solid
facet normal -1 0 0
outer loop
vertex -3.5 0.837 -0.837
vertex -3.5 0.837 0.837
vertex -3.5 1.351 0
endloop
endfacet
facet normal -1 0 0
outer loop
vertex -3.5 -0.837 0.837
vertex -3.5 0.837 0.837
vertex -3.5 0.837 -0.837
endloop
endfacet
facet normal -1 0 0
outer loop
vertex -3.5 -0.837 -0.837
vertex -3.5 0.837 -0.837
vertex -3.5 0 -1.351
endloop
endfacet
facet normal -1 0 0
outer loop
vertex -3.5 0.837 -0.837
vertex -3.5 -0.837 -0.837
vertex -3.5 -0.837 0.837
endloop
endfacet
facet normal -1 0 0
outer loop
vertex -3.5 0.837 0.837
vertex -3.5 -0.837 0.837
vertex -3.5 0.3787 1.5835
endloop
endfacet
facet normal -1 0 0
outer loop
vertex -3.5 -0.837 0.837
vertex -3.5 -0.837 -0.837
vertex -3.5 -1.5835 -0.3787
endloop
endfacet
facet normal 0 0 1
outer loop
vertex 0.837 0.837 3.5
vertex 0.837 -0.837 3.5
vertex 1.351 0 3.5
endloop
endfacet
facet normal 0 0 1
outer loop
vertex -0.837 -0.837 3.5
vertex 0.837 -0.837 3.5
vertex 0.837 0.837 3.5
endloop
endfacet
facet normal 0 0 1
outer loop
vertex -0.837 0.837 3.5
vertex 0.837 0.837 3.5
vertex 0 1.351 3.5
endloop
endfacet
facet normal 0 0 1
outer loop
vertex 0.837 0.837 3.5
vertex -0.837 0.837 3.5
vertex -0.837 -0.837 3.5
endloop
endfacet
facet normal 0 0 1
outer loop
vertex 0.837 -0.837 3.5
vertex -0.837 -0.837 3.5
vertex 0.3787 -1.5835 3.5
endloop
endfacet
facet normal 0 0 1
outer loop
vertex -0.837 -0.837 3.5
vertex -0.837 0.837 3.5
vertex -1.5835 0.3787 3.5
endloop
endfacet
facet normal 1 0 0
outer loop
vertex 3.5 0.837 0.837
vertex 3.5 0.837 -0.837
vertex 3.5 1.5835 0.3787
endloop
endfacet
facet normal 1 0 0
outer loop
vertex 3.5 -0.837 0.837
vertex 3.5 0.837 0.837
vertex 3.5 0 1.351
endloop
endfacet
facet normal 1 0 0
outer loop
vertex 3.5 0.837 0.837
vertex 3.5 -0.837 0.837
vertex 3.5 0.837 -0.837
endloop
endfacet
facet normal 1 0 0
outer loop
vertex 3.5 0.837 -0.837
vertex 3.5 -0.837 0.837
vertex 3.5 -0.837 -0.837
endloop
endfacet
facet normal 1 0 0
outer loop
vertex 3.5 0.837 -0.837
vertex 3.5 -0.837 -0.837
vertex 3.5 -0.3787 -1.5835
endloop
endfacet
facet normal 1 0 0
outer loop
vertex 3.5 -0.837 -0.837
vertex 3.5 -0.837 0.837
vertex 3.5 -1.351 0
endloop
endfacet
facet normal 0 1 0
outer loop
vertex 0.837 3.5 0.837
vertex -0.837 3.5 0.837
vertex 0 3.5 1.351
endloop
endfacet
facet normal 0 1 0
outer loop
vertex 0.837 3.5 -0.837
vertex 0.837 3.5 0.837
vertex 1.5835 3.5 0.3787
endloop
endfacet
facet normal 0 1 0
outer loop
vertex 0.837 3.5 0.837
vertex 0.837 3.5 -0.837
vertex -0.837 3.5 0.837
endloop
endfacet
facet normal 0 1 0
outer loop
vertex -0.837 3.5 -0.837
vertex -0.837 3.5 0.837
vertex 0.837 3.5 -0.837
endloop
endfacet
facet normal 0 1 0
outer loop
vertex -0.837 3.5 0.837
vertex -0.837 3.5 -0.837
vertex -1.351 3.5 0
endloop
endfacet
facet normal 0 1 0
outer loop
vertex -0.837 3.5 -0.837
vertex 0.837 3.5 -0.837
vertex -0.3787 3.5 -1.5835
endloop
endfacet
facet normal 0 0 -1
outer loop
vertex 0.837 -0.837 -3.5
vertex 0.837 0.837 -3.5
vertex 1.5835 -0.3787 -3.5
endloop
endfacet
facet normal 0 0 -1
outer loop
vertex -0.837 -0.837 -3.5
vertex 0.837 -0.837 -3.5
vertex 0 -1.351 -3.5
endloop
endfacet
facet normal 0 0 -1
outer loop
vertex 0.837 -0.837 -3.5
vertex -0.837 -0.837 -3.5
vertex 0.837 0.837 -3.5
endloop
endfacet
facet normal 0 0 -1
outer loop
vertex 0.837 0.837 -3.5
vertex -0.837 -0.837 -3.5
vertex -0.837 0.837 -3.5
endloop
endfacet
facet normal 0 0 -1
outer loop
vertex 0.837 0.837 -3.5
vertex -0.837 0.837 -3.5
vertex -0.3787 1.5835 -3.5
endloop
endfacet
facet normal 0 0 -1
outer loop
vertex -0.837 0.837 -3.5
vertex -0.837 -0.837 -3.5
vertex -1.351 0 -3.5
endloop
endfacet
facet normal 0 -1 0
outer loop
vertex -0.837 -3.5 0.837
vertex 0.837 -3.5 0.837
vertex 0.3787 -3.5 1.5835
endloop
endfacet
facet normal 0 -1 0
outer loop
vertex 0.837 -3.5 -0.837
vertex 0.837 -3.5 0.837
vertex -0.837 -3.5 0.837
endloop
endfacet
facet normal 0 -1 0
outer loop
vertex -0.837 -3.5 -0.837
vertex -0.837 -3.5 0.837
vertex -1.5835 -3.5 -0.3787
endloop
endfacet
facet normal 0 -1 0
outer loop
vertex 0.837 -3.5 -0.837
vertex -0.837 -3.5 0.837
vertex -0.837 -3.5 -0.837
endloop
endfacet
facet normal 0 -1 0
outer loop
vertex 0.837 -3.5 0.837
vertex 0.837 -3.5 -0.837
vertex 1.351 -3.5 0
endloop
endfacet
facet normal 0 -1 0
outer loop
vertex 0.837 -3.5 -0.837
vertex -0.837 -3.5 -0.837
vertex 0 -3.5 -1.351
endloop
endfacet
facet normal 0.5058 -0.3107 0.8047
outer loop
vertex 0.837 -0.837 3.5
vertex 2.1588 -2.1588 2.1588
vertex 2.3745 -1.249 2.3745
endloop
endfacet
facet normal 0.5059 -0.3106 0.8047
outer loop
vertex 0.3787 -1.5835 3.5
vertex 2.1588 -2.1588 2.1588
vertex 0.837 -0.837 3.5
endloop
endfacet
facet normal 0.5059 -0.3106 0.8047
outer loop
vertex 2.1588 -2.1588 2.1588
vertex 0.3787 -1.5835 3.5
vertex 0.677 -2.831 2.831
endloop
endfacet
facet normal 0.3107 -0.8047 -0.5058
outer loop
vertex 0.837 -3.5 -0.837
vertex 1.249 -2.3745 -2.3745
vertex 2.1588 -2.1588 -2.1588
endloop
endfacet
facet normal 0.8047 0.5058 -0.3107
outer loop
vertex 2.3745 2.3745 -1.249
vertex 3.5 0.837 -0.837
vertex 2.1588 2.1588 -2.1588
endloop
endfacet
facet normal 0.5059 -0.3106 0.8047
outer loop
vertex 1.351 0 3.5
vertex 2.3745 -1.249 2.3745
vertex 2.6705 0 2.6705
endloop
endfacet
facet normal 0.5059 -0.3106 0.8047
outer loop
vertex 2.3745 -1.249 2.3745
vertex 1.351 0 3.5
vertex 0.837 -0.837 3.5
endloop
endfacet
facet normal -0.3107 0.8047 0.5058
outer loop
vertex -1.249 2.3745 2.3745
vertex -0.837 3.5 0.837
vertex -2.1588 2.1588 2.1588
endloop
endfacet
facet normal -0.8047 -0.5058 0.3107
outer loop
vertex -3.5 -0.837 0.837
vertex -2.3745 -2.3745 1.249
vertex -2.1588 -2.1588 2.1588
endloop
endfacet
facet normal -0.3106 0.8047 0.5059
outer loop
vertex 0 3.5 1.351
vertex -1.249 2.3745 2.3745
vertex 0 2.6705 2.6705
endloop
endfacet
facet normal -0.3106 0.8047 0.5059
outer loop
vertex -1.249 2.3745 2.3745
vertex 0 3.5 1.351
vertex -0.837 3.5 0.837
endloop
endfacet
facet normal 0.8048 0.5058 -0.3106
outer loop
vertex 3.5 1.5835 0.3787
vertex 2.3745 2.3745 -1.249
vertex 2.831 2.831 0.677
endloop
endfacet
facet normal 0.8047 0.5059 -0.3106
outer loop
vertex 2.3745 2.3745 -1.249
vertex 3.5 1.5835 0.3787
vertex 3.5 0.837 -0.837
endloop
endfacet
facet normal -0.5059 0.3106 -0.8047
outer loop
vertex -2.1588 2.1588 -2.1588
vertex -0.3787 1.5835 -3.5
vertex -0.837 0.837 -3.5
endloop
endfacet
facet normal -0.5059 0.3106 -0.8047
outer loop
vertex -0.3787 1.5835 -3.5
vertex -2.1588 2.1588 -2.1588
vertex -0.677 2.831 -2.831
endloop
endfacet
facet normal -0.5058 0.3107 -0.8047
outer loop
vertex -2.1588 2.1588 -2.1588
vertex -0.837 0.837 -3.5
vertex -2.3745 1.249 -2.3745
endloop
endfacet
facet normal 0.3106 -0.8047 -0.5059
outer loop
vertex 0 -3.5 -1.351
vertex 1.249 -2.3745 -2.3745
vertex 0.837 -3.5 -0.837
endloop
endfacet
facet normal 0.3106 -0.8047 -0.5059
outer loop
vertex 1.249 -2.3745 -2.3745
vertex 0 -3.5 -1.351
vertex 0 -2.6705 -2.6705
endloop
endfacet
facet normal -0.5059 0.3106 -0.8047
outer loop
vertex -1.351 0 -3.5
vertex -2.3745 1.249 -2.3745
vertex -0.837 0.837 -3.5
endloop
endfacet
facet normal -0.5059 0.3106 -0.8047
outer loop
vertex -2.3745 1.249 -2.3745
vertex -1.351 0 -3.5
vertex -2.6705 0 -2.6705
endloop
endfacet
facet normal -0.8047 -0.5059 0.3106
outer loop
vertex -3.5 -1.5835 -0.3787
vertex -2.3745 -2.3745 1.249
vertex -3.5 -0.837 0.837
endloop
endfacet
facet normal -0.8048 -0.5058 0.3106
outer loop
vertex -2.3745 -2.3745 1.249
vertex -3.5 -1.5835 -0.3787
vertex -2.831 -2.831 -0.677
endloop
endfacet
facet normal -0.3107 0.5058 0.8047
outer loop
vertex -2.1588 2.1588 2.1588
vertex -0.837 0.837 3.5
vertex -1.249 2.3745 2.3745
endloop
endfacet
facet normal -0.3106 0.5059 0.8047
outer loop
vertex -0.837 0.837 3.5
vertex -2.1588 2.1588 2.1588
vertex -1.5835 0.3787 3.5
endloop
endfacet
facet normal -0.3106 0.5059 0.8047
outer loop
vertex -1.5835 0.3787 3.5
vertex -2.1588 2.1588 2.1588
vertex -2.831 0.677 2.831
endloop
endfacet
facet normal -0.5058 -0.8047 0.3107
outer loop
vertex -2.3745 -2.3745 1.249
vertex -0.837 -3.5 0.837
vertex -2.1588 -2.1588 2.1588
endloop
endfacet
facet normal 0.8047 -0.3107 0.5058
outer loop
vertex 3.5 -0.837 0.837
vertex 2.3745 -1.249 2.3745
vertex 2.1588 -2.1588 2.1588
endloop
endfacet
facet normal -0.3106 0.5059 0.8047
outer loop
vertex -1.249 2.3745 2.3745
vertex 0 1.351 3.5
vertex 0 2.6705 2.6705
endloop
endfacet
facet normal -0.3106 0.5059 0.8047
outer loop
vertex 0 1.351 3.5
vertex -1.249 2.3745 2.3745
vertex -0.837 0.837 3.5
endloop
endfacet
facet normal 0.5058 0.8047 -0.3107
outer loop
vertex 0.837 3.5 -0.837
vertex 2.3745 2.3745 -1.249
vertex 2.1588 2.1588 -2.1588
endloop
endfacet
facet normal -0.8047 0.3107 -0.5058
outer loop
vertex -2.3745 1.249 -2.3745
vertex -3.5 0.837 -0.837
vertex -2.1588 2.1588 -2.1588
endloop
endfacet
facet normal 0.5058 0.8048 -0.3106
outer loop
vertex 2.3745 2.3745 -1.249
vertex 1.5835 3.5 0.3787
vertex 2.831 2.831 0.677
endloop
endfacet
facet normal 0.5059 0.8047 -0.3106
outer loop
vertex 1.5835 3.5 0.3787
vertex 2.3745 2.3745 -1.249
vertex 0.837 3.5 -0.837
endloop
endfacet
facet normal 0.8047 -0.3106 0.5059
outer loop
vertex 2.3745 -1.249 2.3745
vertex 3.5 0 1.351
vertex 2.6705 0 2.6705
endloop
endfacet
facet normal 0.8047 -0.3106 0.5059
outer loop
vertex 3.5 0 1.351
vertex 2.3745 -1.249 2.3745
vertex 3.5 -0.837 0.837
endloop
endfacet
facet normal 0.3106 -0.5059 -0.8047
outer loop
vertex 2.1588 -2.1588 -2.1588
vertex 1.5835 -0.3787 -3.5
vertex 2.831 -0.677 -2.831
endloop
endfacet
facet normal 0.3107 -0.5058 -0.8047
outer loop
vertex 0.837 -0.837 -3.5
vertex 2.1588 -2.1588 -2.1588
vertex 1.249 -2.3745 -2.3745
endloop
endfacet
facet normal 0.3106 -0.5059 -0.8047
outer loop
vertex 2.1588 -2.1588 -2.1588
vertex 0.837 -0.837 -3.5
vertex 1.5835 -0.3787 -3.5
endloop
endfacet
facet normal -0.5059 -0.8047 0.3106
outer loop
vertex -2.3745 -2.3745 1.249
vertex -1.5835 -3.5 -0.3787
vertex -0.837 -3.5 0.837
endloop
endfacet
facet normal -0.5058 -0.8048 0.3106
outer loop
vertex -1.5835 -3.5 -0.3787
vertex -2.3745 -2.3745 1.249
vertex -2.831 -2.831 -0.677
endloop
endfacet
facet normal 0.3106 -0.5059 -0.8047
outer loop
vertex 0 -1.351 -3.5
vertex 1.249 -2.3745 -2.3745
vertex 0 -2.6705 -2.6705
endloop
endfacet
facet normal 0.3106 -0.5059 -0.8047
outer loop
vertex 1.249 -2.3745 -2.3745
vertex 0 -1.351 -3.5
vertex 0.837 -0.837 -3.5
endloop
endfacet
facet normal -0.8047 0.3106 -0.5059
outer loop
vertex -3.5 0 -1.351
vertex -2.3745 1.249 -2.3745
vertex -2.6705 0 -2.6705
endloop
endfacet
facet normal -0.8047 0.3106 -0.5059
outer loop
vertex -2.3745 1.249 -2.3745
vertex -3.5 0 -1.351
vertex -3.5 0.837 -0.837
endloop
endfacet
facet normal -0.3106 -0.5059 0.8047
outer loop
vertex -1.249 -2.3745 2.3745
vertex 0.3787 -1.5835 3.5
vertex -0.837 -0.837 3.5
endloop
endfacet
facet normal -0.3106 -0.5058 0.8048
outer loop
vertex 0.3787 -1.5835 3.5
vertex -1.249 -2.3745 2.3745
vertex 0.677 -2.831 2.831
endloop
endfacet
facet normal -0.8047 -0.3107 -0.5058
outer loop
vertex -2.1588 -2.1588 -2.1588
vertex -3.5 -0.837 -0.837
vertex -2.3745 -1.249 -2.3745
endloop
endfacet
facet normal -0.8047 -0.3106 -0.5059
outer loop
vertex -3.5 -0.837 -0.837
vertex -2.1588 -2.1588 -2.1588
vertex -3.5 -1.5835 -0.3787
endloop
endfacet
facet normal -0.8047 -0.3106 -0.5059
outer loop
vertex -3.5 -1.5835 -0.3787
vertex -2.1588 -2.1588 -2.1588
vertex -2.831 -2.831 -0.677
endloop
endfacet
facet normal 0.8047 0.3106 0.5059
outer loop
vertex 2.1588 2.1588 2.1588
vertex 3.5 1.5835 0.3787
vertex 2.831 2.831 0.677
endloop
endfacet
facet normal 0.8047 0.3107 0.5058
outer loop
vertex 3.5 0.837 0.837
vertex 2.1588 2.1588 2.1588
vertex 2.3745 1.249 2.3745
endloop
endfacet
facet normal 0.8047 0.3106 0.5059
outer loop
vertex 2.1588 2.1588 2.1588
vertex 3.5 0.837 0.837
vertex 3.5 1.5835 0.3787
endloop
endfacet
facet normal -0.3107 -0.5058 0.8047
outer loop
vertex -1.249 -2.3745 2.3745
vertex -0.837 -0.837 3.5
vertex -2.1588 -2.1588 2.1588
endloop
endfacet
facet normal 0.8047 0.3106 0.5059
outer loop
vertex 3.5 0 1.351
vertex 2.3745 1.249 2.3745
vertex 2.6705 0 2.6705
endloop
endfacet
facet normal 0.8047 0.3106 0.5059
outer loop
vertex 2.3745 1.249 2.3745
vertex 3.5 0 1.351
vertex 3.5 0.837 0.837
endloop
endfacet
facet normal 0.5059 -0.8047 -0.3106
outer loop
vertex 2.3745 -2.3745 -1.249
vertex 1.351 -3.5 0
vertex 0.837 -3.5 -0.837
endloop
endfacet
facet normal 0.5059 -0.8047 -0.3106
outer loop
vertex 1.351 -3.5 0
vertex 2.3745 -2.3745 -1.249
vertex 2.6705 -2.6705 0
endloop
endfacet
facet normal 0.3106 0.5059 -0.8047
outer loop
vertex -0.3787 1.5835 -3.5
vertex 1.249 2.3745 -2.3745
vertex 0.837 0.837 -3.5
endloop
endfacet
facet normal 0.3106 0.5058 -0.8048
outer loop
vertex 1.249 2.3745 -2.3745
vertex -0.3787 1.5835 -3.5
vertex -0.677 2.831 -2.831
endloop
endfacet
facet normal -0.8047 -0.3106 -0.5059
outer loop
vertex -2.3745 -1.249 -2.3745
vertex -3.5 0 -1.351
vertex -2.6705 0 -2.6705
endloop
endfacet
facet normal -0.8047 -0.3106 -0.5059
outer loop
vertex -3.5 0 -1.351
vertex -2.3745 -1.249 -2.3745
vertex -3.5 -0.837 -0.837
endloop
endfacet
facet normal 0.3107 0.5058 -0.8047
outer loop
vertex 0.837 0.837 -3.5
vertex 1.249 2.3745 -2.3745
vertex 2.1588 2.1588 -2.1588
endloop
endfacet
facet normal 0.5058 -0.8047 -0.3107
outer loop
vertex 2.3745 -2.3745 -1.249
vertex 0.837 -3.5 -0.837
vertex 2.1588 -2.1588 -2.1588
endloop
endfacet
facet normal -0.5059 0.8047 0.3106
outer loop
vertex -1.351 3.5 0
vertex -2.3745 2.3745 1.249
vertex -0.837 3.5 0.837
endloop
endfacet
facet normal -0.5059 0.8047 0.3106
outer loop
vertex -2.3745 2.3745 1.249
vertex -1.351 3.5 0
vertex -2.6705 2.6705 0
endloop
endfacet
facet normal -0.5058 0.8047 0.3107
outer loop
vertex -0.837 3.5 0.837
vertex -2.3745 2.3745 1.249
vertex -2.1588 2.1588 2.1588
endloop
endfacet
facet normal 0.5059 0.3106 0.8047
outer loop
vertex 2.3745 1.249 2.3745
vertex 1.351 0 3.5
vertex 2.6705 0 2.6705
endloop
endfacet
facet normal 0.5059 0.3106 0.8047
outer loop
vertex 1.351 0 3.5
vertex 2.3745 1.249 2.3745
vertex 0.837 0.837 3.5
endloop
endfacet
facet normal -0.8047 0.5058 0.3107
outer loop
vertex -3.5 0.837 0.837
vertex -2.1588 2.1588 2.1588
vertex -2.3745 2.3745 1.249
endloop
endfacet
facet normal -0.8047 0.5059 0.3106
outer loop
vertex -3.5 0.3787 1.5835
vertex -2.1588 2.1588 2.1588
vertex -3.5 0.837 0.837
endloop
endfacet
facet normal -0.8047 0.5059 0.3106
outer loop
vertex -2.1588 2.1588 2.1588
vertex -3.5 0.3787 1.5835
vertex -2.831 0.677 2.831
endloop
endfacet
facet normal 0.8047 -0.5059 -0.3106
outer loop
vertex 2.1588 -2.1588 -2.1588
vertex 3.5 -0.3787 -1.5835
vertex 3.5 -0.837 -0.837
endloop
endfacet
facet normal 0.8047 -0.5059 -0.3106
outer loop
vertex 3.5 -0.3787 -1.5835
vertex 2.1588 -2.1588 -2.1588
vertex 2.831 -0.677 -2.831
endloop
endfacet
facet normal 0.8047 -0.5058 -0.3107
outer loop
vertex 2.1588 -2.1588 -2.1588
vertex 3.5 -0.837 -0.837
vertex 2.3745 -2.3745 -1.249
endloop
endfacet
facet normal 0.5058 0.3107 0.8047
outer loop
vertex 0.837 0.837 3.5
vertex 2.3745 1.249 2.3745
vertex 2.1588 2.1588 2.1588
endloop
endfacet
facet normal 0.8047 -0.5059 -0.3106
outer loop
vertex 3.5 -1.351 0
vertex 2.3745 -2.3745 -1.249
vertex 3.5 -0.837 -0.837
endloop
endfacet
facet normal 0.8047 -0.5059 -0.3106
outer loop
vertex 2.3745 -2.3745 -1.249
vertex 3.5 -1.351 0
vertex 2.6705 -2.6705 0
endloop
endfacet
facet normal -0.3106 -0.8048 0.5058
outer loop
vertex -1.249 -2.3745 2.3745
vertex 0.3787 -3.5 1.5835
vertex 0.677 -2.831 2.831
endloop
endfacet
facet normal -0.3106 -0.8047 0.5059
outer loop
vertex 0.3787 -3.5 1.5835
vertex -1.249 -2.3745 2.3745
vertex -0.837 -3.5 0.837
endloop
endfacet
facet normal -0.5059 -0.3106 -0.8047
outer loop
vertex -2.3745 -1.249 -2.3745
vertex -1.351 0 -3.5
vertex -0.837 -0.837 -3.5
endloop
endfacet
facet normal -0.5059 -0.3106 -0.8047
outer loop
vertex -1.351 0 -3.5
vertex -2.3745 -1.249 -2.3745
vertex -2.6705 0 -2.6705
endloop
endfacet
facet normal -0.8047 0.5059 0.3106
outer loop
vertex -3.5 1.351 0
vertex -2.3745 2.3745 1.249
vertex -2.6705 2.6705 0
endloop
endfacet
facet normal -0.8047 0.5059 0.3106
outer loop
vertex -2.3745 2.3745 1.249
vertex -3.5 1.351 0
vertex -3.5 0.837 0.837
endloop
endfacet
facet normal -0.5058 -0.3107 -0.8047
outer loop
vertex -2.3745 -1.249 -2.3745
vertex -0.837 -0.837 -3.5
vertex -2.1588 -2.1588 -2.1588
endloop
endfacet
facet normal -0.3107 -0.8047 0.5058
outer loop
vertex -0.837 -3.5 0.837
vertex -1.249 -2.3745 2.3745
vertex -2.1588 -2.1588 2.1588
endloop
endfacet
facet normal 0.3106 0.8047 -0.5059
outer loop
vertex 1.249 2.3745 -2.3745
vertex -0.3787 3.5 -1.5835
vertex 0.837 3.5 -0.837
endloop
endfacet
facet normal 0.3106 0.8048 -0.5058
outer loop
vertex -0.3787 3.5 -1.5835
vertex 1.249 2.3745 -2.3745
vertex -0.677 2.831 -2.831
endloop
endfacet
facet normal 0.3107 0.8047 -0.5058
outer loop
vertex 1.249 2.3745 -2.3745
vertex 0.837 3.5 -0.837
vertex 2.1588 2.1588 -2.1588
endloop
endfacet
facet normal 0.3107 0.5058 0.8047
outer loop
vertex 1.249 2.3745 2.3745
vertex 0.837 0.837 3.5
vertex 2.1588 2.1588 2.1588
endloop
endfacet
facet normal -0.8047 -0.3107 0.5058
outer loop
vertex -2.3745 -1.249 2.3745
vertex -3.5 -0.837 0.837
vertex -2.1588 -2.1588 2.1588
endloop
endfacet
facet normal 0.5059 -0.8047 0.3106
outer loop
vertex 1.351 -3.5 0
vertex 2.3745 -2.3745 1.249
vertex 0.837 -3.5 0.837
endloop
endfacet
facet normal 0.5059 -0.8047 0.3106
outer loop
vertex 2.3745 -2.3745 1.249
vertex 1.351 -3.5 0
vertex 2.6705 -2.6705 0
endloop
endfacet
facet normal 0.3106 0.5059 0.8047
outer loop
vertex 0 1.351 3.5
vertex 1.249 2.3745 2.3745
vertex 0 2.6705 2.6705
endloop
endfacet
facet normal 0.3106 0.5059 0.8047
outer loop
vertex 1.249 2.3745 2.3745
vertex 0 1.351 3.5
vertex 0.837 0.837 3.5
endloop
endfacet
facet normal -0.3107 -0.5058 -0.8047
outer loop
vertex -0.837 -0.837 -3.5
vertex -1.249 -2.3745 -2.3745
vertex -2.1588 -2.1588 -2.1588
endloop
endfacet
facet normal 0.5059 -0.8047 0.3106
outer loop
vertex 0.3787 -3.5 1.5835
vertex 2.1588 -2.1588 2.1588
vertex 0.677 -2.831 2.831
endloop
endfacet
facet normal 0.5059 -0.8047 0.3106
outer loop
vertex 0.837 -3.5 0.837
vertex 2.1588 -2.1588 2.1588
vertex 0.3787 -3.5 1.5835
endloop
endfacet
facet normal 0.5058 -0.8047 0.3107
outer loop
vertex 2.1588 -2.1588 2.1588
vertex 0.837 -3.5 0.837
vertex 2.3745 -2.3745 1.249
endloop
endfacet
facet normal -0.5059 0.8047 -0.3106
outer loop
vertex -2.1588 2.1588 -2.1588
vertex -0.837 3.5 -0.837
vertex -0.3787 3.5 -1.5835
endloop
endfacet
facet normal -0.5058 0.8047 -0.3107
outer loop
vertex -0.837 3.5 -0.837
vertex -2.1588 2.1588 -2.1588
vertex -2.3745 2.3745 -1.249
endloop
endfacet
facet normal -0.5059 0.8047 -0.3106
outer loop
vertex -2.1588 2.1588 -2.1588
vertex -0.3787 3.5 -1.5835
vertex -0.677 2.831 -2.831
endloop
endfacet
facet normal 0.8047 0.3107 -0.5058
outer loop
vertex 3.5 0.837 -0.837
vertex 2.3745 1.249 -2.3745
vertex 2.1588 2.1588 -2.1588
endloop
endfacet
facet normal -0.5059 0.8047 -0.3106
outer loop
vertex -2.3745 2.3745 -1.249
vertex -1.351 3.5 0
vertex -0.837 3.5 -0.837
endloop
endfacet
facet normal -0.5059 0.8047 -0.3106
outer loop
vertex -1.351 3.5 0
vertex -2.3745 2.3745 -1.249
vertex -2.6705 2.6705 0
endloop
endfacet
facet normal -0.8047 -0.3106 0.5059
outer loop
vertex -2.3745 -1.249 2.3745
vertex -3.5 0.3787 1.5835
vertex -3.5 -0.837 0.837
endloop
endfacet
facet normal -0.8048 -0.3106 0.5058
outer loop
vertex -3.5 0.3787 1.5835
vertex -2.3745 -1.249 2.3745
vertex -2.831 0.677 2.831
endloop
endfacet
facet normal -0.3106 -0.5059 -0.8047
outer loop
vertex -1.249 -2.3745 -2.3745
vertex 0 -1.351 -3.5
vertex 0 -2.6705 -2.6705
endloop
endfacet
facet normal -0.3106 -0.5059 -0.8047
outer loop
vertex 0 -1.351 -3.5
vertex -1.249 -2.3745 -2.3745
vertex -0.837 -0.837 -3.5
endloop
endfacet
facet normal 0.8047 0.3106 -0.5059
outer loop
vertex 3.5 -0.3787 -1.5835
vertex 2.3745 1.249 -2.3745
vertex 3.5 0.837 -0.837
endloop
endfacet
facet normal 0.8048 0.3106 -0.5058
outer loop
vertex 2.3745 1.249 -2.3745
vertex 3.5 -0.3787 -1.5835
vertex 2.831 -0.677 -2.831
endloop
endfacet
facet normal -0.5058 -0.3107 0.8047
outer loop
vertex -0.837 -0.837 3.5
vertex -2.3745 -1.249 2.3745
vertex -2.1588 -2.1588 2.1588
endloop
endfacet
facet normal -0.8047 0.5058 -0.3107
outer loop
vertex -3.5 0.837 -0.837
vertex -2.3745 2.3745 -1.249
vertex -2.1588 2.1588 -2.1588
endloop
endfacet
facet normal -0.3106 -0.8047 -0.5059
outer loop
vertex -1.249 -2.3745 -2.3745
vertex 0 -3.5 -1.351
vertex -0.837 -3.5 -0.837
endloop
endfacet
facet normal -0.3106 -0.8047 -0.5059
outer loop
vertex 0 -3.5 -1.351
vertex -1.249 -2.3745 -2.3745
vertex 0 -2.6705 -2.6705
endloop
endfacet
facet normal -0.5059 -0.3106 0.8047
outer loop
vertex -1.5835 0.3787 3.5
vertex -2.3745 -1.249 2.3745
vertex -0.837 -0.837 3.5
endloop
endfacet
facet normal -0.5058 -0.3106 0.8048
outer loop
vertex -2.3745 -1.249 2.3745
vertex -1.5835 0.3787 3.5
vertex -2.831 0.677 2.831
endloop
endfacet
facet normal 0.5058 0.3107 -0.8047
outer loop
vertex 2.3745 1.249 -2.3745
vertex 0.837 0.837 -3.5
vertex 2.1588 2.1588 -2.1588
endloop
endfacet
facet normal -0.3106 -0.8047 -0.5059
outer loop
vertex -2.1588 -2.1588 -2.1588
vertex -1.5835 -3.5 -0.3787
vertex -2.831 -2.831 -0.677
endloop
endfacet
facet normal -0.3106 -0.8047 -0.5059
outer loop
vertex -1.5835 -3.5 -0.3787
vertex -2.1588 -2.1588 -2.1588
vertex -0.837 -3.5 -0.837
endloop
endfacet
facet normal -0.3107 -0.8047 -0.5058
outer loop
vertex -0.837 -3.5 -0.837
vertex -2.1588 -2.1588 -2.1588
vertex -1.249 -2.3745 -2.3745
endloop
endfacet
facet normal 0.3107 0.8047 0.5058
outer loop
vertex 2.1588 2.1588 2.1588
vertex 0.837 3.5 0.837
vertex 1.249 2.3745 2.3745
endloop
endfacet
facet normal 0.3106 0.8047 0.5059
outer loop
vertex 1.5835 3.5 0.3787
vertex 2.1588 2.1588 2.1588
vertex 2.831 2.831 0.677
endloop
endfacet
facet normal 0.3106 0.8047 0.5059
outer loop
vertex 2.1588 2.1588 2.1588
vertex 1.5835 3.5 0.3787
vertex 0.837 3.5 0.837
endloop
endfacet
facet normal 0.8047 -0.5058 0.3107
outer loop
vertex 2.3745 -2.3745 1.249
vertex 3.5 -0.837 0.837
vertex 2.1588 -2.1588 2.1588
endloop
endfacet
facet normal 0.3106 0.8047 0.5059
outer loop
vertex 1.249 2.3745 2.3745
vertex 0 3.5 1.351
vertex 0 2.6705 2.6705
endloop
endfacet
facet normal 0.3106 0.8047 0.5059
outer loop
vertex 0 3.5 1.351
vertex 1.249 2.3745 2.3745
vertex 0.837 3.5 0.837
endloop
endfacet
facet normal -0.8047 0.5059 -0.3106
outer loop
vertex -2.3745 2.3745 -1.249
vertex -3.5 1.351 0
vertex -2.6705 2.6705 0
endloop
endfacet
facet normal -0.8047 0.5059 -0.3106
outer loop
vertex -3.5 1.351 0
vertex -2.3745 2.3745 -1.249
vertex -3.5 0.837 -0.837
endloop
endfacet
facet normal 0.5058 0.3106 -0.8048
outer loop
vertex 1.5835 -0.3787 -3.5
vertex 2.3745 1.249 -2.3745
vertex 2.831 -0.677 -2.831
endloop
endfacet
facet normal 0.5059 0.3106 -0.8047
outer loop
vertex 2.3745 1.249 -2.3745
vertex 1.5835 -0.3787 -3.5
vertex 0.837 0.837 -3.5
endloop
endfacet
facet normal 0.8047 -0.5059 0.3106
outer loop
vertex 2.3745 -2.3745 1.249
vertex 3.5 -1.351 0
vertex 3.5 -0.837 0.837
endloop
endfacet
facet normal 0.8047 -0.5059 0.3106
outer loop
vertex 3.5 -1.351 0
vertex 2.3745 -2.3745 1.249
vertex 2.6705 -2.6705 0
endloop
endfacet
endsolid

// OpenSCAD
// Asteroid

intersection(){
	cube(7, center=true);
	rotate(45, [1,1,1]) cube(7, center=true);
	rotate(-45, [1,1,1]) cube(7, center=true);
	rotate(45, [1,-1,1]) cube(7, center=true);
	rotate(-45, [1,-1,1]) cube(7, center=true);
	rotate(45, [-1,1,1]) cube(7, center=true);
	rotate(-45, [-1,1,1]) cube(7, center=true);
	rotate(45, [1,-1,-1]) cube(7, center=true);
	rotate(-45, [1,-1,-1]) cube(7, center=true);
}
